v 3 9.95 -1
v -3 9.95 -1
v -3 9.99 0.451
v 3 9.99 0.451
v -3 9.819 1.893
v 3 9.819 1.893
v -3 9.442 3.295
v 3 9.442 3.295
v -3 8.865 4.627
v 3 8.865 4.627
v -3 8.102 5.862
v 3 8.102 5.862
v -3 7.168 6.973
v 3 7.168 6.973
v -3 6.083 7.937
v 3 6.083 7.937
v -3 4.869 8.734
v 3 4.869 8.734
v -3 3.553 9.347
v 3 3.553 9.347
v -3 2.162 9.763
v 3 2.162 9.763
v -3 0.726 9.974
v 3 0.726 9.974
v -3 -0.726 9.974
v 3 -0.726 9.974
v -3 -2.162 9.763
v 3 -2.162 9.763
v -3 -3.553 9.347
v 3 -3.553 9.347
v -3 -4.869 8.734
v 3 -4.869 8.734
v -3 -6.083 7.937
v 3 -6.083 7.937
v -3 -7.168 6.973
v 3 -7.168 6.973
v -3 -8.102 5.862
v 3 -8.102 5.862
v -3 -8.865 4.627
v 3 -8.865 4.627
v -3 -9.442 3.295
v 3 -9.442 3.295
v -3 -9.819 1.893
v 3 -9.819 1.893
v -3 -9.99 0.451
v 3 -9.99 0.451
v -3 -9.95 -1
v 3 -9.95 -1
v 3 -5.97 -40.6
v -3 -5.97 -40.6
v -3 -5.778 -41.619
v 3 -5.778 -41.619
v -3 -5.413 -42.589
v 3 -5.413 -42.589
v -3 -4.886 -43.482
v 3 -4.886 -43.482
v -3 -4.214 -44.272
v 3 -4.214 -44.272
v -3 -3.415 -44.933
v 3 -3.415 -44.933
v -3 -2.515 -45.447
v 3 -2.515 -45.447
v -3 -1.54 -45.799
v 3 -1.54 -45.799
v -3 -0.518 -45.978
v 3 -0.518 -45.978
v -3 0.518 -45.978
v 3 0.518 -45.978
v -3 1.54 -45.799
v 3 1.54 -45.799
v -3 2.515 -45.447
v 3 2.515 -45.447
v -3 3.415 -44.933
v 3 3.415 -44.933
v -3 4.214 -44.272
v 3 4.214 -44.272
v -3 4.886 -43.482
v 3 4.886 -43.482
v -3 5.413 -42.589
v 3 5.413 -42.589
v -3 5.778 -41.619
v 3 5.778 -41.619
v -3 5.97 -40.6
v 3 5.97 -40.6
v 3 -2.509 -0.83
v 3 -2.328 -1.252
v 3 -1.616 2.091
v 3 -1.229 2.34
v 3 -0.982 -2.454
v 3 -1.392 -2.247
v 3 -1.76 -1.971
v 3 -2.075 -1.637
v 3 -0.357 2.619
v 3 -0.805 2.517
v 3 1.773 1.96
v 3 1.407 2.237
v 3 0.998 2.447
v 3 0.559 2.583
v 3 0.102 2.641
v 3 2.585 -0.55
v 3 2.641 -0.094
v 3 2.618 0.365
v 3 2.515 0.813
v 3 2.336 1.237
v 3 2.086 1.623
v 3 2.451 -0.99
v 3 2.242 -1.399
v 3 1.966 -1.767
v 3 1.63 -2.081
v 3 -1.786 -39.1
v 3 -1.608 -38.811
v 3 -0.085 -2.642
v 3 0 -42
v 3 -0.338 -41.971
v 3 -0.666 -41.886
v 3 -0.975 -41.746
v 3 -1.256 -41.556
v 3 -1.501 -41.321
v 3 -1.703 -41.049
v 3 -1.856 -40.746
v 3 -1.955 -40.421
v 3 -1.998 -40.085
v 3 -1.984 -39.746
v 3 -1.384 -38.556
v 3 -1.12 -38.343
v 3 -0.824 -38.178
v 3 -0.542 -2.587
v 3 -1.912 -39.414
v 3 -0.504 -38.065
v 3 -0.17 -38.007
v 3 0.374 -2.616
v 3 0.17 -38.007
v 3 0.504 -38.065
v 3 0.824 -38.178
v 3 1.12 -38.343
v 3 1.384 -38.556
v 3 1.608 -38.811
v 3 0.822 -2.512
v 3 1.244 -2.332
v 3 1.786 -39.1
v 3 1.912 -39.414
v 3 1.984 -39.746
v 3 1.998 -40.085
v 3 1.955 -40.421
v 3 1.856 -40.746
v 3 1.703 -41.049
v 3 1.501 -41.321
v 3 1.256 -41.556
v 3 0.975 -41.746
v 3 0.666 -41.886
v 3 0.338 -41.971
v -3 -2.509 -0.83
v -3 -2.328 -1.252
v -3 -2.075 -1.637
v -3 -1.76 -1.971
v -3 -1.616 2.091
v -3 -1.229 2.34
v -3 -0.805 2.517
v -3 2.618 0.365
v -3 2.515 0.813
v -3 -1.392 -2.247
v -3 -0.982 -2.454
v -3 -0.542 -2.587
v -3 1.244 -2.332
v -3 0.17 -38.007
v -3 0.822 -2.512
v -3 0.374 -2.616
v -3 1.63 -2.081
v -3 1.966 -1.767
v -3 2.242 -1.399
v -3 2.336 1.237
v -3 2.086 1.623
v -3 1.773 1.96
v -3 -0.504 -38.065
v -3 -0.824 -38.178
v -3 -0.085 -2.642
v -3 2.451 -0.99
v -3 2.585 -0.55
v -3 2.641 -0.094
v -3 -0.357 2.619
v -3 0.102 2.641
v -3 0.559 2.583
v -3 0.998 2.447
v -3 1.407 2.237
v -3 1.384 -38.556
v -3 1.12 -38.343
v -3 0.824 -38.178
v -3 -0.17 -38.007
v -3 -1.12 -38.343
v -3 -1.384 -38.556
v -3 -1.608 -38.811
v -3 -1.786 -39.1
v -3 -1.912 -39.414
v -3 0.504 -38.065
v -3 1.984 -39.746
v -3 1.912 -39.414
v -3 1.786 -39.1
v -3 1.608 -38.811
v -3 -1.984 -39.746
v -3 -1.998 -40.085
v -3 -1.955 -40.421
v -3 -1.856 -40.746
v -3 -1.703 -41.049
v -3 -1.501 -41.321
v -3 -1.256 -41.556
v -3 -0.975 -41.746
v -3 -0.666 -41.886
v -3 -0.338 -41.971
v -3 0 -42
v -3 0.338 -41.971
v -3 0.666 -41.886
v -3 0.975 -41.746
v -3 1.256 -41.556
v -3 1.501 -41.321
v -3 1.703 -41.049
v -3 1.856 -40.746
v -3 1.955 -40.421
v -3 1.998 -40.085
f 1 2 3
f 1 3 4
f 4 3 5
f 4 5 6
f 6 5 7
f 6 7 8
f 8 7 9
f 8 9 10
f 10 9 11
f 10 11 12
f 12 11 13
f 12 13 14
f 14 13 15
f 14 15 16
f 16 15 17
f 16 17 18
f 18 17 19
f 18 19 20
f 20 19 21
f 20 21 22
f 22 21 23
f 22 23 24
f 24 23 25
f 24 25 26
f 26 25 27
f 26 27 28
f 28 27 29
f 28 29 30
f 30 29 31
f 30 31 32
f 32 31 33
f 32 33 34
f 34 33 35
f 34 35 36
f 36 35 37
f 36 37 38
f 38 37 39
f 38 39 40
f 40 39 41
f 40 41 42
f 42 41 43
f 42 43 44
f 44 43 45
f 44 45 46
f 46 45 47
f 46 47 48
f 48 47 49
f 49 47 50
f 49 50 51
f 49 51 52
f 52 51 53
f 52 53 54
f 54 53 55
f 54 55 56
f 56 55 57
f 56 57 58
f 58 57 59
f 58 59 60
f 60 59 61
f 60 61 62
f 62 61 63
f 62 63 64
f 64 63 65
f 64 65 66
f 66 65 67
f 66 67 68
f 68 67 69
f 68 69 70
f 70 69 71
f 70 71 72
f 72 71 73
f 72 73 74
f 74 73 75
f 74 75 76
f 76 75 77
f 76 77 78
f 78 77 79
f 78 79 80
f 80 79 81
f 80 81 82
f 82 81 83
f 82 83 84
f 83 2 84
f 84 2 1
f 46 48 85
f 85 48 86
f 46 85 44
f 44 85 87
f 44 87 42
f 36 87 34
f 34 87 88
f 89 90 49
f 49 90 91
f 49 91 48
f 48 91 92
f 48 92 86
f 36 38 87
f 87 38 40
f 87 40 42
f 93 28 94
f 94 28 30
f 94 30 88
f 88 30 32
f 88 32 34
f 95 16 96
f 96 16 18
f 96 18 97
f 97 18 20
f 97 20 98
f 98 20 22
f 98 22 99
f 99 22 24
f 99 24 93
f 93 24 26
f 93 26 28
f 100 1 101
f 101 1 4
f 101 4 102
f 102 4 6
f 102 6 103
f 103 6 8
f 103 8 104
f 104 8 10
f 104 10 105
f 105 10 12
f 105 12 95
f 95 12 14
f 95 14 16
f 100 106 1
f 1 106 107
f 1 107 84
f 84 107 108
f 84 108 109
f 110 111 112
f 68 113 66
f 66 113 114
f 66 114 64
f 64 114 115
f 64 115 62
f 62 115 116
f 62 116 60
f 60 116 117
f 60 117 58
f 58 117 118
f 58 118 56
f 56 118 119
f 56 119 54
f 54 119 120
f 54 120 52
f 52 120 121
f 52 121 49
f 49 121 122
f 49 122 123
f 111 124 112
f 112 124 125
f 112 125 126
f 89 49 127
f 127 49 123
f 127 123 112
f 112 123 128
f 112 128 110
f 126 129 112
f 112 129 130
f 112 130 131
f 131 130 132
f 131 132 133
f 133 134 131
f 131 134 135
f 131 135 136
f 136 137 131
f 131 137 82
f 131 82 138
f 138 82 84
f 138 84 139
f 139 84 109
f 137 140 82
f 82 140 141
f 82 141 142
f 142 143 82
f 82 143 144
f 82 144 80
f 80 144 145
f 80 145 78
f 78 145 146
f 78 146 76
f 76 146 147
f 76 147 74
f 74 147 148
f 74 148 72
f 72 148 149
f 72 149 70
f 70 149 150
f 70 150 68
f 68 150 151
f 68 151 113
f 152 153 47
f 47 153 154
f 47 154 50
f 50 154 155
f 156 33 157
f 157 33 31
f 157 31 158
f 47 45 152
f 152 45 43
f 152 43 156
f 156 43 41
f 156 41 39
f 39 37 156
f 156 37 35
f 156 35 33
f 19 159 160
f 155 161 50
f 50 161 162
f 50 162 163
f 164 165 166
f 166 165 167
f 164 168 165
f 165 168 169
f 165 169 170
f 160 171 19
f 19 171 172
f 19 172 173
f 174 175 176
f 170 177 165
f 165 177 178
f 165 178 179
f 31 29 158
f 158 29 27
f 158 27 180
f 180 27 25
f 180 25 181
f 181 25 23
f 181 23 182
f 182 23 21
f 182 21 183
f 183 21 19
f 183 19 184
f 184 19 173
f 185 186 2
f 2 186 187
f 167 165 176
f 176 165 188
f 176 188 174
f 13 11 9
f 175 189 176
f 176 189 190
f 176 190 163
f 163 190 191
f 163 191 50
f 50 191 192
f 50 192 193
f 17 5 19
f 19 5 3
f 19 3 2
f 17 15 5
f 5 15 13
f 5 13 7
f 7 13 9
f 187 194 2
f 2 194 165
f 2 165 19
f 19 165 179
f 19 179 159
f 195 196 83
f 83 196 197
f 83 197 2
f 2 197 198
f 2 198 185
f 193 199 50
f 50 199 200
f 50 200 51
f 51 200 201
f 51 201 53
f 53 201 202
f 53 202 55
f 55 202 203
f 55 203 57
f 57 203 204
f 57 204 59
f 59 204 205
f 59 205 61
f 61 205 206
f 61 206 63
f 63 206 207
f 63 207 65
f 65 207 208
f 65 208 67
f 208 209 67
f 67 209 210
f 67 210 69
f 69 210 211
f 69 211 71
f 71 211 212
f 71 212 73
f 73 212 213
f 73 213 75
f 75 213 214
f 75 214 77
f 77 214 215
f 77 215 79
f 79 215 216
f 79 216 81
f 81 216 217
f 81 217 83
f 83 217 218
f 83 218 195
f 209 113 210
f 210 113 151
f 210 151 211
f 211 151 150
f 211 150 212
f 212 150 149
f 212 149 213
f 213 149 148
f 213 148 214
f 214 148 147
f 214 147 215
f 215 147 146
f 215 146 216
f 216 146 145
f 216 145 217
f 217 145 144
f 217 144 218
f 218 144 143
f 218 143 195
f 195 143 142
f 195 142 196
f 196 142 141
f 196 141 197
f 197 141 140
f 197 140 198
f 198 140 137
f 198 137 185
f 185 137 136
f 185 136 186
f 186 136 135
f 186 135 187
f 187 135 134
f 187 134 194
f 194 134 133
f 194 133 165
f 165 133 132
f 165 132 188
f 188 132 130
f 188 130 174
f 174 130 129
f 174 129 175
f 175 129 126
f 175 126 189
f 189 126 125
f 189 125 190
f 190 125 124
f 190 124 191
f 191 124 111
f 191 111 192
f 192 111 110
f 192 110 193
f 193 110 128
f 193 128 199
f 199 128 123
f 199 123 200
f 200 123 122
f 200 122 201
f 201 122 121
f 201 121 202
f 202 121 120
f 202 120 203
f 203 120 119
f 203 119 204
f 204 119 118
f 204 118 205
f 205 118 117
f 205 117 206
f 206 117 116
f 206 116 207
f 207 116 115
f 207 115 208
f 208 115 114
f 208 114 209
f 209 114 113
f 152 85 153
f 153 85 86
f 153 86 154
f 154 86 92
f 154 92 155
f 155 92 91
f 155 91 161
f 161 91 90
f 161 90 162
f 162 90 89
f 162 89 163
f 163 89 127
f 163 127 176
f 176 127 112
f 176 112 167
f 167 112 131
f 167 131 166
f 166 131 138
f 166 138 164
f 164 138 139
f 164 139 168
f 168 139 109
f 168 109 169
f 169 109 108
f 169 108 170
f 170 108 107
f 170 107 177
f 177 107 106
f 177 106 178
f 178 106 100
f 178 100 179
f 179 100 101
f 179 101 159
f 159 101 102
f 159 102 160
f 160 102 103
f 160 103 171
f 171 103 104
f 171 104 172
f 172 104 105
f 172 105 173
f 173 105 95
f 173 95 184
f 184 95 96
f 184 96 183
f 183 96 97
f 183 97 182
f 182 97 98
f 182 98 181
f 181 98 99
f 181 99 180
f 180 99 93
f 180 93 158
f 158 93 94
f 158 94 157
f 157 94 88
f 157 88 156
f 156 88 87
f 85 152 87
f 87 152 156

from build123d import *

# Parameters (mm, degrees)
SKETCH1_R                = 10
SKETCH1_R_2              = 6
BOSS_EXTRUDE1_DEPTH      = 3
BOSS_EXTRUDE1_DEPTH_BACK = 3
SKETCH2_R                = 2
CUT_EXTRUDE1_DEPTH       = 4
CUT_EXTRUDE1_DEPTH_BACK  = 4
CUT_EXTRUDE2_DEPTH       = 10


with BuildPart() as part:
    # Sketch1 → Boss-Extrude1 (new body, two sides)
    with BuildSketch(Plane(origin=(0, 0, 0), x_dir=(0, 0, -1), z_dir=(1, 0, 0))) as boss_extrude1_sk:
        Circle(SKETCH1_R)
        with BuildLine():
            Line((1, -9.949874371), (40.6, -5.969924623))
            ThreePointArc((40.6, -5.969924623), (34, 0), (40.6, 5.969924623))
            Line((40.6, 5.969924623), (1, 9.949874371))
            ThreePointArc((1, 9.949874371), (7.416198487, 6.708203932), (10, 0))
            ThreePointArc((10, 0), (7.416198487, -6.708203933), (1, -9.949874371))
        make_face()
        with Locations((40, 0)):
            Circle(SKETCH1_R_2)
    extrude(amount=BOSS_EXTRUDE1_DEPTH)
    extrude(boss_extrude1_sk.sketch, amount=-BOSS_EXTRUDE1_DEPTH_BACK)

    # Sketch2 → Cut-Extrude1 (cut, two sides)
    with BuildSketch(Plane(origin=(0, 0, 0), x_dir=(0, 0, -1), z_dir=(1, 0, 0))) as cut_extrude1_sk:
        with Locations((40, 0)):
            Circle(SKETCH2_R)
    extrude(amount=CUT_EXTRUDE1_DEPTH, mode=Mode.SUBTRACT)
    extrude(cut_extrude1_sk.sketch, amount=-CUT_EXTRUDE1_DEPTH_BACK, mode=Mode.SUBTRACT)

    # Sketch3 → Cut-Extrude2 (cut)
    with BuildSketch(Plane(origin=(3, 0, 0), x_dir=(0, 0, -1), z_dir=(1, 0, 0))):
        with BuildLine():
            Line((-2.09135741, -1.616067196), (0.829813276, -2.509354285))
            ThreePointArc((0.829813276, -2.509354285), (0.772893172, 2.527466151), (-2.09135741, -1.616067196))
        make_face()
    extrude(amount=-CUT_EXTRUDE2_DEPTH, mode=Mode.SUBTRACT)


solid = part.part
